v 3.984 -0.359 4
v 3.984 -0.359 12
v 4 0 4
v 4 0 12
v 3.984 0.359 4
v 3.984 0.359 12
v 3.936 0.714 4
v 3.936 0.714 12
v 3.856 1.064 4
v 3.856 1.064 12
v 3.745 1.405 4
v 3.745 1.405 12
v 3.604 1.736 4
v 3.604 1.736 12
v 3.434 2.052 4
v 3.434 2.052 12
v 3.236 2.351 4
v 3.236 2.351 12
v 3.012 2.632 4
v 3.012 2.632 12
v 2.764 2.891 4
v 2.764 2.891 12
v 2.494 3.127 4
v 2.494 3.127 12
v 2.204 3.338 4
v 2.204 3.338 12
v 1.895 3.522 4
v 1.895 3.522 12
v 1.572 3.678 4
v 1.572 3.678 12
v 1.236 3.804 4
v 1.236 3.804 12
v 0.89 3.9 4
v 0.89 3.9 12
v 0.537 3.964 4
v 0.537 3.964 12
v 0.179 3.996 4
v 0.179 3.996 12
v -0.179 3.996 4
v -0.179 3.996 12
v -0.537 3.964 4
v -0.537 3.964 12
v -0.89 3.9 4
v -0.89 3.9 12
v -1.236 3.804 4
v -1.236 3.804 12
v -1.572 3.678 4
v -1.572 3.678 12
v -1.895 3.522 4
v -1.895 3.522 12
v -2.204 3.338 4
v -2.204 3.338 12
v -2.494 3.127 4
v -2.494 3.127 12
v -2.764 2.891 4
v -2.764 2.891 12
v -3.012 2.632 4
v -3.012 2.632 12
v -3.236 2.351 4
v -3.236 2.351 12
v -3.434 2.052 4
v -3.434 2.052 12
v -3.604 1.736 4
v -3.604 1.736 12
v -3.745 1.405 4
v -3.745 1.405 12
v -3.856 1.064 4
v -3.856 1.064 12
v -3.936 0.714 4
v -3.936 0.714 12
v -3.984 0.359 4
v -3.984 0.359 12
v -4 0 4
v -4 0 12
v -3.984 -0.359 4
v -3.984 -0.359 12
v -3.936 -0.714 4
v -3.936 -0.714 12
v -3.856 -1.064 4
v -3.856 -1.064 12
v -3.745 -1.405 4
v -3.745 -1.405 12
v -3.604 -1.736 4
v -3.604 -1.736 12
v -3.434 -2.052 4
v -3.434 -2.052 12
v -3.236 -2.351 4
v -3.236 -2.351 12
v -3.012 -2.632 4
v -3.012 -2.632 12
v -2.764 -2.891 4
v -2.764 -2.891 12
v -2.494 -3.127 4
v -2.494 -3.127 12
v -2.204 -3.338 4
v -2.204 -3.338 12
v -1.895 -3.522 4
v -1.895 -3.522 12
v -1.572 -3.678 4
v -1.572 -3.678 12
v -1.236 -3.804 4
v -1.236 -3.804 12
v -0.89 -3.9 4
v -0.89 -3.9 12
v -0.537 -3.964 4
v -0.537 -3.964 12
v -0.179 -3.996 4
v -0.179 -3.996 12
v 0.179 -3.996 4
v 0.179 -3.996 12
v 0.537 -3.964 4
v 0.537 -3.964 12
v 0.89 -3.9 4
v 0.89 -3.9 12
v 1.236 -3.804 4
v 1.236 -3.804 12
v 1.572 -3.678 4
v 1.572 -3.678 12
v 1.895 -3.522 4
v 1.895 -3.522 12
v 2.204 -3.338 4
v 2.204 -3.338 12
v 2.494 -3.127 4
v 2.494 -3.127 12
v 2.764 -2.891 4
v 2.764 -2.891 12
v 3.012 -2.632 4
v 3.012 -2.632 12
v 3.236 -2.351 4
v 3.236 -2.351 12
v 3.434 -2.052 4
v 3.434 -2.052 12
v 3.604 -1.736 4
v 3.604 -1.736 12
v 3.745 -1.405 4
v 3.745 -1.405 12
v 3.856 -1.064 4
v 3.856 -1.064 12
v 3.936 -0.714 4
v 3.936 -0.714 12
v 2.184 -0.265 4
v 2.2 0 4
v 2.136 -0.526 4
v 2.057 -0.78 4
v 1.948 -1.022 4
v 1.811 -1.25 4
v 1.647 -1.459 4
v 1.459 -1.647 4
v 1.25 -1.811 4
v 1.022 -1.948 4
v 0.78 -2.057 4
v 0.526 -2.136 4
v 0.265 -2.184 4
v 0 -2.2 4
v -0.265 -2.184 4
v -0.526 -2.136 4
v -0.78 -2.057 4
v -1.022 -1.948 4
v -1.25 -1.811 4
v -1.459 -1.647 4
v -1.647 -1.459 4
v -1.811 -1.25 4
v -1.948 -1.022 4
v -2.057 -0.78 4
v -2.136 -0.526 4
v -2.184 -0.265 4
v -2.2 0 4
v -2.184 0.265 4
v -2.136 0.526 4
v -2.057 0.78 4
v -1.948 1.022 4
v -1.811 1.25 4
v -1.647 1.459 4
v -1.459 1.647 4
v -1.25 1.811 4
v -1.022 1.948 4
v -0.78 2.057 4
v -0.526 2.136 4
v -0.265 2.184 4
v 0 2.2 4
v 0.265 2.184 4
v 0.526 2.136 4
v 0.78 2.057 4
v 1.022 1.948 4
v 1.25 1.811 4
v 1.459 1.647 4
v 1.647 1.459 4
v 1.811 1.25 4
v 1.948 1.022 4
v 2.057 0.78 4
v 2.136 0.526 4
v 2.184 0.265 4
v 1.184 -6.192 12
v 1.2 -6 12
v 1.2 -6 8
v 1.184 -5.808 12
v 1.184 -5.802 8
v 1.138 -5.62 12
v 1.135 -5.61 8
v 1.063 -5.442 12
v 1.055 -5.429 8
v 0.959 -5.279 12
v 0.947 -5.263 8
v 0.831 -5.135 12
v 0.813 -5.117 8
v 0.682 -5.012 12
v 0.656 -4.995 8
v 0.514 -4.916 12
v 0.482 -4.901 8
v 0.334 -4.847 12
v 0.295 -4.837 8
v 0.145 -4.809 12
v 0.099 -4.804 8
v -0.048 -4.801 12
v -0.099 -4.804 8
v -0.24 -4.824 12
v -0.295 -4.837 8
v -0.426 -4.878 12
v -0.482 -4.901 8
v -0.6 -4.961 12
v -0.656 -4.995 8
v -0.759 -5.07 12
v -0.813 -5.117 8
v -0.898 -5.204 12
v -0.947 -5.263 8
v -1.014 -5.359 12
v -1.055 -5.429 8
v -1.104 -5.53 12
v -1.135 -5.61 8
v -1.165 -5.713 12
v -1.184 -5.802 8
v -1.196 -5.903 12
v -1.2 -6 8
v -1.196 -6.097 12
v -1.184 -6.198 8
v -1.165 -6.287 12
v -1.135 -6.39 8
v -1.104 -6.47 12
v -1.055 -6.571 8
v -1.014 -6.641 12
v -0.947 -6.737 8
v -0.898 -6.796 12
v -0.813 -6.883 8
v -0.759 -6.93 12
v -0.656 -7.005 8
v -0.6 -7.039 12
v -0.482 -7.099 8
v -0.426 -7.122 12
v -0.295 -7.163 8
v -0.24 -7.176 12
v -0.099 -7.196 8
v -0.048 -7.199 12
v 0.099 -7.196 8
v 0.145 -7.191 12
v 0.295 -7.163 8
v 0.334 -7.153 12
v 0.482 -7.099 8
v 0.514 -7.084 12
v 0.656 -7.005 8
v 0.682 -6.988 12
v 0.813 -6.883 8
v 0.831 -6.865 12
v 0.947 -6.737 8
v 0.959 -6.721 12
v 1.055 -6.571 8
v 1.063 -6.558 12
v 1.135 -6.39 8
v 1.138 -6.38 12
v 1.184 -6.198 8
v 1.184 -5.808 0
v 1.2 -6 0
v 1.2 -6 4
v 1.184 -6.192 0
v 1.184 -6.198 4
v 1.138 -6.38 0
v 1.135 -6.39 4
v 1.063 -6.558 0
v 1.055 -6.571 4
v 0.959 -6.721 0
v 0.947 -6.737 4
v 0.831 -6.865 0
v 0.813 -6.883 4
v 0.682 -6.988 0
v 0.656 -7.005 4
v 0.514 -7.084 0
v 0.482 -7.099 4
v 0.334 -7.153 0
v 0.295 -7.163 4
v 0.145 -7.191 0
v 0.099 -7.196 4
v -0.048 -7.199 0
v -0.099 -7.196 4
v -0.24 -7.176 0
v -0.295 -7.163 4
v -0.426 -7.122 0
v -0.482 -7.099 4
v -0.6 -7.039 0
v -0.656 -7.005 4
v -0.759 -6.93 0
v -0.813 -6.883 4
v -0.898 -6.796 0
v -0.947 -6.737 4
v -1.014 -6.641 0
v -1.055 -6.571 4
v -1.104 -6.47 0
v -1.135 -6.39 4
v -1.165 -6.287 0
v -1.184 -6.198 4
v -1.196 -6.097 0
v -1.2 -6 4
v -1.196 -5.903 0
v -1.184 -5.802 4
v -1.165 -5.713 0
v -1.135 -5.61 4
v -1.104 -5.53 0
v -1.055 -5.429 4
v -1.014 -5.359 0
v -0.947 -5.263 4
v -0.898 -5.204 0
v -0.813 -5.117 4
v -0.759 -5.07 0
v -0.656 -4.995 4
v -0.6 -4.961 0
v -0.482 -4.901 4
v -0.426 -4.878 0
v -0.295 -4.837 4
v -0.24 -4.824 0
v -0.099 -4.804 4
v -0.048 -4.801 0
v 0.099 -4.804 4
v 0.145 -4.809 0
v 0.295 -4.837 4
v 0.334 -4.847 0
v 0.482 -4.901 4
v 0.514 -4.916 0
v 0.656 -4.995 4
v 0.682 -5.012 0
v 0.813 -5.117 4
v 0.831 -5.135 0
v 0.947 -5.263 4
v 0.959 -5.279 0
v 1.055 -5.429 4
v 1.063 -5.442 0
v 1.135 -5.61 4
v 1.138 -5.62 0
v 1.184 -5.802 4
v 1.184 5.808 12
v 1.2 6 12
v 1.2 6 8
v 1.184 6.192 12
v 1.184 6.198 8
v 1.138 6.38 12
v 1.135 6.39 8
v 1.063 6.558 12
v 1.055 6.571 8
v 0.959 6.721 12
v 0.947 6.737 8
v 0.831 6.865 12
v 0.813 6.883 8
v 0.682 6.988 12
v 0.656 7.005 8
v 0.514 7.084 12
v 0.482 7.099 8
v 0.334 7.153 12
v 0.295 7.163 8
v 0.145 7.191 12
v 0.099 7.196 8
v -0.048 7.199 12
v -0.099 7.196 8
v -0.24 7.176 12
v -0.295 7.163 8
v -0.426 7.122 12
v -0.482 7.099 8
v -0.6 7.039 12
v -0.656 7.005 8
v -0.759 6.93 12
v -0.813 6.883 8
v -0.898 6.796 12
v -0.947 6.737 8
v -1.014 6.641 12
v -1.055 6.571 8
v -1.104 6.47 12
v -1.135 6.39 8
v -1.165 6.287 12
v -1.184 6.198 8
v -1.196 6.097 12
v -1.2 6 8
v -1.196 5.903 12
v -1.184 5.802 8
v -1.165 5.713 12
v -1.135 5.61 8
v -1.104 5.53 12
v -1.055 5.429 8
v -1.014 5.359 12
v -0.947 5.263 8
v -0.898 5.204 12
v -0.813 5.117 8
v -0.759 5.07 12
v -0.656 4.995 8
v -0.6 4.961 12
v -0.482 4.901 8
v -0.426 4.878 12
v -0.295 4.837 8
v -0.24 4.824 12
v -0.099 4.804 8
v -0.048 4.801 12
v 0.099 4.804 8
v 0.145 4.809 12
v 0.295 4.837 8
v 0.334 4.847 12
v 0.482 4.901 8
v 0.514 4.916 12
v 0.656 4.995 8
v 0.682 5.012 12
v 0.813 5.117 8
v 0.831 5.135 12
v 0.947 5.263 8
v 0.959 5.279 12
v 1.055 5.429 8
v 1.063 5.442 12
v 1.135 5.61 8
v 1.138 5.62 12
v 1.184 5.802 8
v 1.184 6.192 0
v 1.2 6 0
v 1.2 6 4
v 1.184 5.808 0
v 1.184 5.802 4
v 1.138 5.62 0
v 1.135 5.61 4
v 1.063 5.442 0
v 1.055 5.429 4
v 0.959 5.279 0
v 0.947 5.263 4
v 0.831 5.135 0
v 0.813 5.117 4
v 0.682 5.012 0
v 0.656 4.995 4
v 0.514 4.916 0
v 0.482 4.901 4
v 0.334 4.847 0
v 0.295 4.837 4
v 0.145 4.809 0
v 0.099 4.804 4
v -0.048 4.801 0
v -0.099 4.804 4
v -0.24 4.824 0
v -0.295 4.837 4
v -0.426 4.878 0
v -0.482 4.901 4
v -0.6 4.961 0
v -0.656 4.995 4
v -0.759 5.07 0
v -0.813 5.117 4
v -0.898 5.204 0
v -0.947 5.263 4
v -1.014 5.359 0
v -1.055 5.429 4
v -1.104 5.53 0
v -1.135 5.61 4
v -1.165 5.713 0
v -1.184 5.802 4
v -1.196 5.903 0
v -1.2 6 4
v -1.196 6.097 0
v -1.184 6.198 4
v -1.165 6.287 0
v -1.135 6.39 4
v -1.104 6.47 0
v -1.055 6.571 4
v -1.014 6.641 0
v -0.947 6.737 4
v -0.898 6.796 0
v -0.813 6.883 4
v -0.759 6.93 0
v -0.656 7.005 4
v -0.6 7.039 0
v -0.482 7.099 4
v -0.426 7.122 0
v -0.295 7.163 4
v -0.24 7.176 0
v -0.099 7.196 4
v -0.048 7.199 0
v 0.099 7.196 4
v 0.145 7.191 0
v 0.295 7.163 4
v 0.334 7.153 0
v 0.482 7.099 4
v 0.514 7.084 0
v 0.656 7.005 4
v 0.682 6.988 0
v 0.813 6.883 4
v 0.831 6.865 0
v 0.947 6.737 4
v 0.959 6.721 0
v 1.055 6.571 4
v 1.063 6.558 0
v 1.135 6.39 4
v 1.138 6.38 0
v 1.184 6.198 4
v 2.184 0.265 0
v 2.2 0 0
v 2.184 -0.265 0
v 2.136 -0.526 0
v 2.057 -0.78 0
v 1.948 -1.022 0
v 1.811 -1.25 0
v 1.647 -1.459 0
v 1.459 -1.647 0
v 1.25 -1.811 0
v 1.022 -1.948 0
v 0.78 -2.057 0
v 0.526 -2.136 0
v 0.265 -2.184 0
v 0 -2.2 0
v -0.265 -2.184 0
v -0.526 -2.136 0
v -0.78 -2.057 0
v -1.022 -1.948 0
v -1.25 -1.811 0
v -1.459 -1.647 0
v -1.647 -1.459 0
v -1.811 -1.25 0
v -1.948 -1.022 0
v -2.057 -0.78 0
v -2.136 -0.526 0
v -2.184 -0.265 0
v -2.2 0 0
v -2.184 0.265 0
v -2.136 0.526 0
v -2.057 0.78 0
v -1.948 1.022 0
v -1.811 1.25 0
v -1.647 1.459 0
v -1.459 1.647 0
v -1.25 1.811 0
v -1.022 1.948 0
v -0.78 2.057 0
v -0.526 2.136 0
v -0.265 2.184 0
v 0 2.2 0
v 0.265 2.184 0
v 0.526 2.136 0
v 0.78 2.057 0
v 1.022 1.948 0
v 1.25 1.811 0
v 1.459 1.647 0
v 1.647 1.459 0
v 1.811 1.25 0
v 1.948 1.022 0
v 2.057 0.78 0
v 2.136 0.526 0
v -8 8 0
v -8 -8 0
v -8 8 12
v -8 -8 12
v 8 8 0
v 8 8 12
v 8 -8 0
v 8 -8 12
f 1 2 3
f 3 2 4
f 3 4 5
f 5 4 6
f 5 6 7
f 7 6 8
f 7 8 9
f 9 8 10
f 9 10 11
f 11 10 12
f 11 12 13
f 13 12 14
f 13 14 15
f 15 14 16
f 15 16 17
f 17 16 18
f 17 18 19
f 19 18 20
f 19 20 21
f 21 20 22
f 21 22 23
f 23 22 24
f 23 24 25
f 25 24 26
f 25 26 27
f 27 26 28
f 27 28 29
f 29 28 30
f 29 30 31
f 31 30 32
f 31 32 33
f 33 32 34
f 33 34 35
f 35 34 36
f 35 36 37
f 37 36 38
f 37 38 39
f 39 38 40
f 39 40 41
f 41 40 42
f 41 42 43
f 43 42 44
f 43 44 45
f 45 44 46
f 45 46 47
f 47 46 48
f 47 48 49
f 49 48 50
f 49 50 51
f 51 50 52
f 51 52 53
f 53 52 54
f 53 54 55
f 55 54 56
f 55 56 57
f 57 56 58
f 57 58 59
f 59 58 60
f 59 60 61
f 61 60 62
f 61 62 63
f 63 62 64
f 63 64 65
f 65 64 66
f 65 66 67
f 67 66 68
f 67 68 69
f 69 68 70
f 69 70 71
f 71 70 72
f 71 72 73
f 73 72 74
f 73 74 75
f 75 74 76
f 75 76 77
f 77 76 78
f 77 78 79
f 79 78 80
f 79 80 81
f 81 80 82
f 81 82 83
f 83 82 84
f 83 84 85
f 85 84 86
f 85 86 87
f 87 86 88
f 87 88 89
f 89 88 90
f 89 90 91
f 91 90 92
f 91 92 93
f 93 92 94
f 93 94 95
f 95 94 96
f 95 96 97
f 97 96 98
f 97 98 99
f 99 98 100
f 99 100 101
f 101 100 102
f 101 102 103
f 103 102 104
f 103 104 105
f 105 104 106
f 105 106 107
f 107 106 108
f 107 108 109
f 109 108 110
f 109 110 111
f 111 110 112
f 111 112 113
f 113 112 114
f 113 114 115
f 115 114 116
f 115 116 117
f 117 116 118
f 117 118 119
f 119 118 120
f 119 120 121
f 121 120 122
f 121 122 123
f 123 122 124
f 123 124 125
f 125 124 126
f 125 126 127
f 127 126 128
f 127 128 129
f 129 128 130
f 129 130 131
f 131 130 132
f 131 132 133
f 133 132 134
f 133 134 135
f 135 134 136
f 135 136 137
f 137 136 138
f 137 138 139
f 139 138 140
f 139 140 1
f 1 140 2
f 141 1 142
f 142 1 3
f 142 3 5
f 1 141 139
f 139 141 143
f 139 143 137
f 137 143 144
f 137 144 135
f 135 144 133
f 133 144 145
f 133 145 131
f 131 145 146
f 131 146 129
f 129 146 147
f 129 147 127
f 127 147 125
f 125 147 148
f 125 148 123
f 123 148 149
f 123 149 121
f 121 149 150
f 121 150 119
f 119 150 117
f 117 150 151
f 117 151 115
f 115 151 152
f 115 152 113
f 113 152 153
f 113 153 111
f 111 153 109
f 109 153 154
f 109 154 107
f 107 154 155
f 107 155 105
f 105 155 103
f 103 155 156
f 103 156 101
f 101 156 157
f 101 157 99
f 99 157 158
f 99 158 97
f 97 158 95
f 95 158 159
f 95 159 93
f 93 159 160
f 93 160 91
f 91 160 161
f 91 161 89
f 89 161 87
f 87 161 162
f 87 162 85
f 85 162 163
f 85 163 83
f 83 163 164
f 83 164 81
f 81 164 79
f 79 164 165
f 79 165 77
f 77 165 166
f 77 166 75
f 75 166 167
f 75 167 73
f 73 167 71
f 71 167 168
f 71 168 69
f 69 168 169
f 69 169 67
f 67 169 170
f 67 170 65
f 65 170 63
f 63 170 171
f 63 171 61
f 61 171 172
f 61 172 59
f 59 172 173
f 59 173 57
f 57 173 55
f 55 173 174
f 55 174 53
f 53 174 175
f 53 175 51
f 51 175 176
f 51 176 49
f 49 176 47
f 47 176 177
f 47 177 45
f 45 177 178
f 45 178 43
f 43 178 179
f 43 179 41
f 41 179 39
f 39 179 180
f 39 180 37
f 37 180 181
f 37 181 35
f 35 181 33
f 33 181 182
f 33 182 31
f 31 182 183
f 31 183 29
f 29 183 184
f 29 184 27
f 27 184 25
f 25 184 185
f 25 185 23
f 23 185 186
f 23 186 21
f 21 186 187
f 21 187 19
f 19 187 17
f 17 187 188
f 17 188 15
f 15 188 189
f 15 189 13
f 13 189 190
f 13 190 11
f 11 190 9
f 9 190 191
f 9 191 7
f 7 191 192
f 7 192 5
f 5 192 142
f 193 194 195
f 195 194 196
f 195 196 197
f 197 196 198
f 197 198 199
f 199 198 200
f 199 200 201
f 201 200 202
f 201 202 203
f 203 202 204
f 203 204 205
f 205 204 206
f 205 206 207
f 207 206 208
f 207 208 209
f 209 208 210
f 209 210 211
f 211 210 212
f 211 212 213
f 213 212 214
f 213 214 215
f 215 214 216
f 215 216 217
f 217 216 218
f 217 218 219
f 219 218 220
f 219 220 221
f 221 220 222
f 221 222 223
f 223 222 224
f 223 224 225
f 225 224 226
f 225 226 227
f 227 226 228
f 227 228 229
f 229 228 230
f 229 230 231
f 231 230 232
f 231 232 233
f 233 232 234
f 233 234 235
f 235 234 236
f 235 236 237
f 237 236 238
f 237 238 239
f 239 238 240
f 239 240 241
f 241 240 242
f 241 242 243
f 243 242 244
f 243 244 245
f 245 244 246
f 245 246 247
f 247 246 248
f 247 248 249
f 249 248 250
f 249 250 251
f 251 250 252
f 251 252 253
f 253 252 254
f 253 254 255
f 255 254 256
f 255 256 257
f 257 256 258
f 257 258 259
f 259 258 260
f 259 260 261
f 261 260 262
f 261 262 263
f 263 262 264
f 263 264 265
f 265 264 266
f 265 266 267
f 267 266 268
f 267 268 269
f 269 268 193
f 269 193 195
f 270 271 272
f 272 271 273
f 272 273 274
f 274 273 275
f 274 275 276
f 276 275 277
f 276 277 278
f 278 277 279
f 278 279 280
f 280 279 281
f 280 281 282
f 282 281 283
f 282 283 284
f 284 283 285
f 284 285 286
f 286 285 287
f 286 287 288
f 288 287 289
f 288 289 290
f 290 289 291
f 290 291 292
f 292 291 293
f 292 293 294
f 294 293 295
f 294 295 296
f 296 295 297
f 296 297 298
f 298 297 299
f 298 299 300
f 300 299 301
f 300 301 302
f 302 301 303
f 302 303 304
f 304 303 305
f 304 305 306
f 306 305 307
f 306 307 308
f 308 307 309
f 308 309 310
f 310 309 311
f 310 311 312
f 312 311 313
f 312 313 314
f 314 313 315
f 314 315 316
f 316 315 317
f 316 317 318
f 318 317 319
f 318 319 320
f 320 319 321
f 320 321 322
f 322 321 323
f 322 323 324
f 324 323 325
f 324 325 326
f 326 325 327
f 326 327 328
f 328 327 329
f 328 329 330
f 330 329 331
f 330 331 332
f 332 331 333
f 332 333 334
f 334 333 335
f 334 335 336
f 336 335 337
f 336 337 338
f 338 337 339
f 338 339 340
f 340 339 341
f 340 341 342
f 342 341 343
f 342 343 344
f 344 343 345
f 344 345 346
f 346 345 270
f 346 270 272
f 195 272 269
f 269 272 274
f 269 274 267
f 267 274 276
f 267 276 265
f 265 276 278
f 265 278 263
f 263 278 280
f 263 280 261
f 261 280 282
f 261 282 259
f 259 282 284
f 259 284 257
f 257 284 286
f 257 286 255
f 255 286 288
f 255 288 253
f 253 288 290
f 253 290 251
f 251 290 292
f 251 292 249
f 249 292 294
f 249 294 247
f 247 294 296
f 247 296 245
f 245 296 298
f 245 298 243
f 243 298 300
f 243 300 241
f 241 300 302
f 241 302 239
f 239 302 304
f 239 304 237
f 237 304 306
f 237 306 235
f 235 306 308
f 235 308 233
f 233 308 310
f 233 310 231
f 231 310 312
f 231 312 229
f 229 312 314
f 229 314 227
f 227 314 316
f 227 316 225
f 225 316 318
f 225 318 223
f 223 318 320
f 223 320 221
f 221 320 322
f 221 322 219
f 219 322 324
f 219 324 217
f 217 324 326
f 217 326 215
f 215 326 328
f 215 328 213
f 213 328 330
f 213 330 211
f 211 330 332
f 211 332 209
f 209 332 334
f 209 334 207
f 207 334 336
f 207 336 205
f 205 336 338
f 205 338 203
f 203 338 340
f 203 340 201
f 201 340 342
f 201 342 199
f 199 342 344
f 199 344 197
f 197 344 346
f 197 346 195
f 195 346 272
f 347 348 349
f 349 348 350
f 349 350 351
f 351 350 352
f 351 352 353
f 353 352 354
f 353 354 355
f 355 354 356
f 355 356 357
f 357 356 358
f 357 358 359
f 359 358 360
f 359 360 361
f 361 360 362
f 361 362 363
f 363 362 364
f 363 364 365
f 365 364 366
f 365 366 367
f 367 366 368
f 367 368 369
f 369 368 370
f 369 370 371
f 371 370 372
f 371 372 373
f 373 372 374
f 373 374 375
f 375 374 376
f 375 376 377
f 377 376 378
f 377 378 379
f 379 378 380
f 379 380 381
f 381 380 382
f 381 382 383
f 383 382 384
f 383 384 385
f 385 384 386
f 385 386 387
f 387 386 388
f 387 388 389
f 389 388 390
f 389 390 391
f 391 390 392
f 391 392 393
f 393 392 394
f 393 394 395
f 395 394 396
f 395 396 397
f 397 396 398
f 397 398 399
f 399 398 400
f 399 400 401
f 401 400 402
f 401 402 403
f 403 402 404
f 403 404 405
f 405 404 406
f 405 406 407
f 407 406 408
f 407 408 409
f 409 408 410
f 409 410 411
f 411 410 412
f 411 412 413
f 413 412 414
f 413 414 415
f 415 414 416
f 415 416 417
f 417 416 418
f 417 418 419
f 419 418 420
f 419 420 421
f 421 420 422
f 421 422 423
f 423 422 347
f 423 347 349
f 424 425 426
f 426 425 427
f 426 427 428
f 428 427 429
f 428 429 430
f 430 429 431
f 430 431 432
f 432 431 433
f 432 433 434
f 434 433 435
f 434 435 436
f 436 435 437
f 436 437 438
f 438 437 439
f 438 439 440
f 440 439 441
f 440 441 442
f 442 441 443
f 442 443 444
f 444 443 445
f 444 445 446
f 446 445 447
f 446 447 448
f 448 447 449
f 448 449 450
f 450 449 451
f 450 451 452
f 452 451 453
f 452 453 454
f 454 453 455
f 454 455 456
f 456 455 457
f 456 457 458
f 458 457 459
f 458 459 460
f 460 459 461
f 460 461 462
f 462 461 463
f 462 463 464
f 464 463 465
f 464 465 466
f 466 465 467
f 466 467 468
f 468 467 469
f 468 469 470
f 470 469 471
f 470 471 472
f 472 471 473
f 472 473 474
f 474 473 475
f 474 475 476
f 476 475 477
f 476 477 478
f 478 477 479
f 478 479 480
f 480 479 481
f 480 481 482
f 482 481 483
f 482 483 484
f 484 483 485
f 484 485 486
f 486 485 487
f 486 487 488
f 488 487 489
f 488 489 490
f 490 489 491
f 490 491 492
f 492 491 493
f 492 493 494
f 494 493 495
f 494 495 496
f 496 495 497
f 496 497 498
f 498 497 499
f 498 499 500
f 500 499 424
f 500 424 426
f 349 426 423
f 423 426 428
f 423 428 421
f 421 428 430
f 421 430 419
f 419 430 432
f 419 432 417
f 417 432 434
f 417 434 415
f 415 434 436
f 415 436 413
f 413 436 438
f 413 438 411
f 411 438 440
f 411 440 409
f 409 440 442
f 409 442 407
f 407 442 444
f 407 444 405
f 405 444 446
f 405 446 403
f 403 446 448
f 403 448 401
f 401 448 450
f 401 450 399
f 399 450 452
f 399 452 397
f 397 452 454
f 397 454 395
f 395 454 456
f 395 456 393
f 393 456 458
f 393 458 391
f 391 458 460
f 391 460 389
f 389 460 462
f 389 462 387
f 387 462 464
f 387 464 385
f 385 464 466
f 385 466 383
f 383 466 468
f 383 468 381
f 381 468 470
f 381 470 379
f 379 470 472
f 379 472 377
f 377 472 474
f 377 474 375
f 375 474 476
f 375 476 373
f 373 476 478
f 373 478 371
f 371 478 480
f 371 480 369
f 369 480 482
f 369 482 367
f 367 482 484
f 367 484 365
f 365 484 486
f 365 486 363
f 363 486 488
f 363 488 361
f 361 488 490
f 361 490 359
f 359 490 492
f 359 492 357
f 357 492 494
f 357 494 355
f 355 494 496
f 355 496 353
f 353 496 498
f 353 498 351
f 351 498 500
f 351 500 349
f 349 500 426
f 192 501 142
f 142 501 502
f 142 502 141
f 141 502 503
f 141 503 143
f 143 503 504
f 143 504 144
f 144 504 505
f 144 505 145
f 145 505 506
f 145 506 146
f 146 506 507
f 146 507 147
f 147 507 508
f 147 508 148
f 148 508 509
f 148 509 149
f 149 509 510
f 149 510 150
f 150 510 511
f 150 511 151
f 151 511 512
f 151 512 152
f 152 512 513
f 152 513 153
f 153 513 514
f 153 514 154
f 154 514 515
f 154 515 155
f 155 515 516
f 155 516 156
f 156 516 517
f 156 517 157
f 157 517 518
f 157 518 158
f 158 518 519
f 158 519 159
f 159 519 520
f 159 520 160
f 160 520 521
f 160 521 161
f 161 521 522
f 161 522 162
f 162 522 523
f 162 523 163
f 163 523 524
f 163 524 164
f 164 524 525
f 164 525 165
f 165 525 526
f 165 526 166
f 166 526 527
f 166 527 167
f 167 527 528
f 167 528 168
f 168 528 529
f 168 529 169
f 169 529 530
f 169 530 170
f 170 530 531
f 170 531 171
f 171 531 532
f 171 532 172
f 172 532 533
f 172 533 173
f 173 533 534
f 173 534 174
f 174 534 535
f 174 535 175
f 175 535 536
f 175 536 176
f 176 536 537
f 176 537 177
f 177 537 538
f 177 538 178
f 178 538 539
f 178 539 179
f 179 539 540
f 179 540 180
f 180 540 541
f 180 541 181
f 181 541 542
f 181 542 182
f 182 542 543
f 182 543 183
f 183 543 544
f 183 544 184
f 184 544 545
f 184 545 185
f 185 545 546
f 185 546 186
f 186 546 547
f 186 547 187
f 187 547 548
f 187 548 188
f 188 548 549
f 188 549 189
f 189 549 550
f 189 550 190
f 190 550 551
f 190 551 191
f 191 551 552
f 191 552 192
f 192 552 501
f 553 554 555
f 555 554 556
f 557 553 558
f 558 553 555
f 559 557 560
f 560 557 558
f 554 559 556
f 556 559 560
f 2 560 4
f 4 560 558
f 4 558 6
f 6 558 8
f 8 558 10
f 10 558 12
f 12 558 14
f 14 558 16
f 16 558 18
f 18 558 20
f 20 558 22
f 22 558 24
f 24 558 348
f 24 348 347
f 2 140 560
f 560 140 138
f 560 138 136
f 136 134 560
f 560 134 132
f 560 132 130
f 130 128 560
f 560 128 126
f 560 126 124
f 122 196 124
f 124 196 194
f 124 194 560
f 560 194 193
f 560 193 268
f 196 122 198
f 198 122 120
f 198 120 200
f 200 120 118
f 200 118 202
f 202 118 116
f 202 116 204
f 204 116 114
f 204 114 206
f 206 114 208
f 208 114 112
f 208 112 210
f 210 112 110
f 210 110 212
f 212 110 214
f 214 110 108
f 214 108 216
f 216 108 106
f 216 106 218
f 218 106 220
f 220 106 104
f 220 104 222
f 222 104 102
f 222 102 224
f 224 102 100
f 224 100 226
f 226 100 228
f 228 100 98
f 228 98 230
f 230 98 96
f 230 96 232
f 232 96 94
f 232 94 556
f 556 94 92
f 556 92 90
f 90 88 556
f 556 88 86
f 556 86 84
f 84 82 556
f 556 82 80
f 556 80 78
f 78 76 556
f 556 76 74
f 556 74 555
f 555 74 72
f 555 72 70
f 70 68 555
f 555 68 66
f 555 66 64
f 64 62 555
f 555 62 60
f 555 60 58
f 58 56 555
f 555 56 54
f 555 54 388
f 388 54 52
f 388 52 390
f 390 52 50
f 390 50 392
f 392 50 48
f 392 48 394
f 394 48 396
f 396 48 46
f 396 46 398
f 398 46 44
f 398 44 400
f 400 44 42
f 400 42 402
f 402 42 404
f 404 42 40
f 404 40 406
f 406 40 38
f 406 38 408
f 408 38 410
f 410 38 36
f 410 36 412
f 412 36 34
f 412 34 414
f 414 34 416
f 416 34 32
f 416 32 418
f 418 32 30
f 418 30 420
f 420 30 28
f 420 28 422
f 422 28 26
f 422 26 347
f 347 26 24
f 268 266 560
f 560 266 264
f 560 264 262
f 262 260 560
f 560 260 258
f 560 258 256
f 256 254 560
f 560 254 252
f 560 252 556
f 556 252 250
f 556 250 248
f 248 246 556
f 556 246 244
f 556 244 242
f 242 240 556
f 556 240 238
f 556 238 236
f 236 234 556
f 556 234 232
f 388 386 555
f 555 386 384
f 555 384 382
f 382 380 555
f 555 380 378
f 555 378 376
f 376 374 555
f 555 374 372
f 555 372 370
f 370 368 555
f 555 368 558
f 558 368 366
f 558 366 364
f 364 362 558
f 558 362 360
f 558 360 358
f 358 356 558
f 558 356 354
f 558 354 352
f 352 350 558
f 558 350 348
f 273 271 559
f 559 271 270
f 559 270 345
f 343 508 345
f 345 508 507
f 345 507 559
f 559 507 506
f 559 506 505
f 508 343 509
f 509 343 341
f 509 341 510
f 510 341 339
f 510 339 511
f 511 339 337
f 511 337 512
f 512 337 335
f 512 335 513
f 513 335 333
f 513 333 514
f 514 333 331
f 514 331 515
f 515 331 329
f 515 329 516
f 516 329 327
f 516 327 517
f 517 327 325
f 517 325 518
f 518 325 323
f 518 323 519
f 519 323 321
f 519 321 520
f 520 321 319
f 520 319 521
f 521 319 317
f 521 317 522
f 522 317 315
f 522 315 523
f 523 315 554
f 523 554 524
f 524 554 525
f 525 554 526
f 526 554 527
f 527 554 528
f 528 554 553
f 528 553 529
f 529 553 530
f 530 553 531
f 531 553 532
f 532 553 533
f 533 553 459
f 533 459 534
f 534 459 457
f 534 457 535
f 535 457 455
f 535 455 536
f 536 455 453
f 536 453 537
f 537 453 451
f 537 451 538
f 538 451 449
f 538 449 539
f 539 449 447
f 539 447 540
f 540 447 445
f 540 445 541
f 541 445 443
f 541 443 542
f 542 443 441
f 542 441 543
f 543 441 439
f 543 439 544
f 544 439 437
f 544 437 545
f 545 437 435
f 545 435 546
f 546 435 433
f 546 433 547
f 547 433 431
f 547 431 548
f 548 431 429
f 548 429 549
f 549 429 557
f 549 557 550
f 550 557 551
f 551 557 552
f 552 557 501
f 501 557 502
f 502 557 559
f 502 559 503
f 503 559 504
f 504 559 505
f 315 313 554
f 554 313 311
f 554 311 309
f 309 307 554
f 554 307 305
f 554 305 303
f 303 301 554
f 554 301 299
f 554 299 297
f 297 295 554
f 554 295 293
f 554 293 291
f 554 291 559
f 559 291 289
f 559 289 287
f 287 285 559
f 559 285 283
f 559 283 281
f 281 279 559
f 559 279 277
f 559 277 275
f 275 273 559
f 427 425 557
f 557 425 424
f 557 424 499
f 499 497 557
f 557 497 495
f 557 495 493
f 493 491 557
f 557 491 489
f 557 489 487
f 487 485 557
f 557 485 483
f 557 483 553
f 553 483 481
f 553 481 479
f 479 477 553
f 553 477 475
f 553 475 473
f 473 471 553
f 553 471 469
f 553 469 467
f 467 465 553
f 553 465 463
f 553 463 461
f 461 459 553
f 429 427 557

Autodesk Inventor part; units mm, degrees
ref_plane "YZ Plane" through (0, 0, 0) normal (1, 0, 0) x (0, 1, 0)
ref_plane "XZ Plane" through (0, 0, 0) normal (0, 1, 0) x (-1, 0, 0)
sketch "Skizze1" plane through (0, 0, 0) normal (0, 0, 1) x (1, 0, 0)
  line L0 (-8, -8) -> (8, -8)
  line L1 (8, -8) -> (8, 8)
  line L2 (8, 8) -> (-8, 8)
  line L3 (-8, 8) -> (-8, -8)
extrude "Extrusion1" add sketch "Skizze1" along normal blind 12
sketch "Skizze2" plane through (0, 0, 0) normal (0, 0, 1) x (1, 0, 0)
  circle A0 centre (0, 0) radius 2.2
extrude "Extrusion2" cut sketch "Skizze2" along normal blind 12.2
sketch "Skizze3" plane through (0, 0, 0) normal (0, 0, 1) x (1, 0, 0)
  circle A0 centre (0, 6) radius 1.2
extrude "Extrusion3" cut sketch "Skizze3" along normal blind 12.2
sketch "Skizze4" plane through (0, 0, 0) normal (0, 0, 1) x (1, 0, 0)
  circle A0 centre (0, -6) radius 1.2
extrude "Extrusion4" cut sketch "Skizze4" along normal blind 12.2
ref_plane "Arbeitsebene1" through (0, 0, 12) normal (0, 0, 1) x (1, 0, 0)
sketch "Skizze5" plane through (0, 0, 12) normal (0, 0, 1) x (1, 0, 0)
  circle A0 centre (0, 0) radius 4
extrude "Extrusion5" cut sketch "Skizze5" against normal blind 8
properties part number "Rast_Halter"
